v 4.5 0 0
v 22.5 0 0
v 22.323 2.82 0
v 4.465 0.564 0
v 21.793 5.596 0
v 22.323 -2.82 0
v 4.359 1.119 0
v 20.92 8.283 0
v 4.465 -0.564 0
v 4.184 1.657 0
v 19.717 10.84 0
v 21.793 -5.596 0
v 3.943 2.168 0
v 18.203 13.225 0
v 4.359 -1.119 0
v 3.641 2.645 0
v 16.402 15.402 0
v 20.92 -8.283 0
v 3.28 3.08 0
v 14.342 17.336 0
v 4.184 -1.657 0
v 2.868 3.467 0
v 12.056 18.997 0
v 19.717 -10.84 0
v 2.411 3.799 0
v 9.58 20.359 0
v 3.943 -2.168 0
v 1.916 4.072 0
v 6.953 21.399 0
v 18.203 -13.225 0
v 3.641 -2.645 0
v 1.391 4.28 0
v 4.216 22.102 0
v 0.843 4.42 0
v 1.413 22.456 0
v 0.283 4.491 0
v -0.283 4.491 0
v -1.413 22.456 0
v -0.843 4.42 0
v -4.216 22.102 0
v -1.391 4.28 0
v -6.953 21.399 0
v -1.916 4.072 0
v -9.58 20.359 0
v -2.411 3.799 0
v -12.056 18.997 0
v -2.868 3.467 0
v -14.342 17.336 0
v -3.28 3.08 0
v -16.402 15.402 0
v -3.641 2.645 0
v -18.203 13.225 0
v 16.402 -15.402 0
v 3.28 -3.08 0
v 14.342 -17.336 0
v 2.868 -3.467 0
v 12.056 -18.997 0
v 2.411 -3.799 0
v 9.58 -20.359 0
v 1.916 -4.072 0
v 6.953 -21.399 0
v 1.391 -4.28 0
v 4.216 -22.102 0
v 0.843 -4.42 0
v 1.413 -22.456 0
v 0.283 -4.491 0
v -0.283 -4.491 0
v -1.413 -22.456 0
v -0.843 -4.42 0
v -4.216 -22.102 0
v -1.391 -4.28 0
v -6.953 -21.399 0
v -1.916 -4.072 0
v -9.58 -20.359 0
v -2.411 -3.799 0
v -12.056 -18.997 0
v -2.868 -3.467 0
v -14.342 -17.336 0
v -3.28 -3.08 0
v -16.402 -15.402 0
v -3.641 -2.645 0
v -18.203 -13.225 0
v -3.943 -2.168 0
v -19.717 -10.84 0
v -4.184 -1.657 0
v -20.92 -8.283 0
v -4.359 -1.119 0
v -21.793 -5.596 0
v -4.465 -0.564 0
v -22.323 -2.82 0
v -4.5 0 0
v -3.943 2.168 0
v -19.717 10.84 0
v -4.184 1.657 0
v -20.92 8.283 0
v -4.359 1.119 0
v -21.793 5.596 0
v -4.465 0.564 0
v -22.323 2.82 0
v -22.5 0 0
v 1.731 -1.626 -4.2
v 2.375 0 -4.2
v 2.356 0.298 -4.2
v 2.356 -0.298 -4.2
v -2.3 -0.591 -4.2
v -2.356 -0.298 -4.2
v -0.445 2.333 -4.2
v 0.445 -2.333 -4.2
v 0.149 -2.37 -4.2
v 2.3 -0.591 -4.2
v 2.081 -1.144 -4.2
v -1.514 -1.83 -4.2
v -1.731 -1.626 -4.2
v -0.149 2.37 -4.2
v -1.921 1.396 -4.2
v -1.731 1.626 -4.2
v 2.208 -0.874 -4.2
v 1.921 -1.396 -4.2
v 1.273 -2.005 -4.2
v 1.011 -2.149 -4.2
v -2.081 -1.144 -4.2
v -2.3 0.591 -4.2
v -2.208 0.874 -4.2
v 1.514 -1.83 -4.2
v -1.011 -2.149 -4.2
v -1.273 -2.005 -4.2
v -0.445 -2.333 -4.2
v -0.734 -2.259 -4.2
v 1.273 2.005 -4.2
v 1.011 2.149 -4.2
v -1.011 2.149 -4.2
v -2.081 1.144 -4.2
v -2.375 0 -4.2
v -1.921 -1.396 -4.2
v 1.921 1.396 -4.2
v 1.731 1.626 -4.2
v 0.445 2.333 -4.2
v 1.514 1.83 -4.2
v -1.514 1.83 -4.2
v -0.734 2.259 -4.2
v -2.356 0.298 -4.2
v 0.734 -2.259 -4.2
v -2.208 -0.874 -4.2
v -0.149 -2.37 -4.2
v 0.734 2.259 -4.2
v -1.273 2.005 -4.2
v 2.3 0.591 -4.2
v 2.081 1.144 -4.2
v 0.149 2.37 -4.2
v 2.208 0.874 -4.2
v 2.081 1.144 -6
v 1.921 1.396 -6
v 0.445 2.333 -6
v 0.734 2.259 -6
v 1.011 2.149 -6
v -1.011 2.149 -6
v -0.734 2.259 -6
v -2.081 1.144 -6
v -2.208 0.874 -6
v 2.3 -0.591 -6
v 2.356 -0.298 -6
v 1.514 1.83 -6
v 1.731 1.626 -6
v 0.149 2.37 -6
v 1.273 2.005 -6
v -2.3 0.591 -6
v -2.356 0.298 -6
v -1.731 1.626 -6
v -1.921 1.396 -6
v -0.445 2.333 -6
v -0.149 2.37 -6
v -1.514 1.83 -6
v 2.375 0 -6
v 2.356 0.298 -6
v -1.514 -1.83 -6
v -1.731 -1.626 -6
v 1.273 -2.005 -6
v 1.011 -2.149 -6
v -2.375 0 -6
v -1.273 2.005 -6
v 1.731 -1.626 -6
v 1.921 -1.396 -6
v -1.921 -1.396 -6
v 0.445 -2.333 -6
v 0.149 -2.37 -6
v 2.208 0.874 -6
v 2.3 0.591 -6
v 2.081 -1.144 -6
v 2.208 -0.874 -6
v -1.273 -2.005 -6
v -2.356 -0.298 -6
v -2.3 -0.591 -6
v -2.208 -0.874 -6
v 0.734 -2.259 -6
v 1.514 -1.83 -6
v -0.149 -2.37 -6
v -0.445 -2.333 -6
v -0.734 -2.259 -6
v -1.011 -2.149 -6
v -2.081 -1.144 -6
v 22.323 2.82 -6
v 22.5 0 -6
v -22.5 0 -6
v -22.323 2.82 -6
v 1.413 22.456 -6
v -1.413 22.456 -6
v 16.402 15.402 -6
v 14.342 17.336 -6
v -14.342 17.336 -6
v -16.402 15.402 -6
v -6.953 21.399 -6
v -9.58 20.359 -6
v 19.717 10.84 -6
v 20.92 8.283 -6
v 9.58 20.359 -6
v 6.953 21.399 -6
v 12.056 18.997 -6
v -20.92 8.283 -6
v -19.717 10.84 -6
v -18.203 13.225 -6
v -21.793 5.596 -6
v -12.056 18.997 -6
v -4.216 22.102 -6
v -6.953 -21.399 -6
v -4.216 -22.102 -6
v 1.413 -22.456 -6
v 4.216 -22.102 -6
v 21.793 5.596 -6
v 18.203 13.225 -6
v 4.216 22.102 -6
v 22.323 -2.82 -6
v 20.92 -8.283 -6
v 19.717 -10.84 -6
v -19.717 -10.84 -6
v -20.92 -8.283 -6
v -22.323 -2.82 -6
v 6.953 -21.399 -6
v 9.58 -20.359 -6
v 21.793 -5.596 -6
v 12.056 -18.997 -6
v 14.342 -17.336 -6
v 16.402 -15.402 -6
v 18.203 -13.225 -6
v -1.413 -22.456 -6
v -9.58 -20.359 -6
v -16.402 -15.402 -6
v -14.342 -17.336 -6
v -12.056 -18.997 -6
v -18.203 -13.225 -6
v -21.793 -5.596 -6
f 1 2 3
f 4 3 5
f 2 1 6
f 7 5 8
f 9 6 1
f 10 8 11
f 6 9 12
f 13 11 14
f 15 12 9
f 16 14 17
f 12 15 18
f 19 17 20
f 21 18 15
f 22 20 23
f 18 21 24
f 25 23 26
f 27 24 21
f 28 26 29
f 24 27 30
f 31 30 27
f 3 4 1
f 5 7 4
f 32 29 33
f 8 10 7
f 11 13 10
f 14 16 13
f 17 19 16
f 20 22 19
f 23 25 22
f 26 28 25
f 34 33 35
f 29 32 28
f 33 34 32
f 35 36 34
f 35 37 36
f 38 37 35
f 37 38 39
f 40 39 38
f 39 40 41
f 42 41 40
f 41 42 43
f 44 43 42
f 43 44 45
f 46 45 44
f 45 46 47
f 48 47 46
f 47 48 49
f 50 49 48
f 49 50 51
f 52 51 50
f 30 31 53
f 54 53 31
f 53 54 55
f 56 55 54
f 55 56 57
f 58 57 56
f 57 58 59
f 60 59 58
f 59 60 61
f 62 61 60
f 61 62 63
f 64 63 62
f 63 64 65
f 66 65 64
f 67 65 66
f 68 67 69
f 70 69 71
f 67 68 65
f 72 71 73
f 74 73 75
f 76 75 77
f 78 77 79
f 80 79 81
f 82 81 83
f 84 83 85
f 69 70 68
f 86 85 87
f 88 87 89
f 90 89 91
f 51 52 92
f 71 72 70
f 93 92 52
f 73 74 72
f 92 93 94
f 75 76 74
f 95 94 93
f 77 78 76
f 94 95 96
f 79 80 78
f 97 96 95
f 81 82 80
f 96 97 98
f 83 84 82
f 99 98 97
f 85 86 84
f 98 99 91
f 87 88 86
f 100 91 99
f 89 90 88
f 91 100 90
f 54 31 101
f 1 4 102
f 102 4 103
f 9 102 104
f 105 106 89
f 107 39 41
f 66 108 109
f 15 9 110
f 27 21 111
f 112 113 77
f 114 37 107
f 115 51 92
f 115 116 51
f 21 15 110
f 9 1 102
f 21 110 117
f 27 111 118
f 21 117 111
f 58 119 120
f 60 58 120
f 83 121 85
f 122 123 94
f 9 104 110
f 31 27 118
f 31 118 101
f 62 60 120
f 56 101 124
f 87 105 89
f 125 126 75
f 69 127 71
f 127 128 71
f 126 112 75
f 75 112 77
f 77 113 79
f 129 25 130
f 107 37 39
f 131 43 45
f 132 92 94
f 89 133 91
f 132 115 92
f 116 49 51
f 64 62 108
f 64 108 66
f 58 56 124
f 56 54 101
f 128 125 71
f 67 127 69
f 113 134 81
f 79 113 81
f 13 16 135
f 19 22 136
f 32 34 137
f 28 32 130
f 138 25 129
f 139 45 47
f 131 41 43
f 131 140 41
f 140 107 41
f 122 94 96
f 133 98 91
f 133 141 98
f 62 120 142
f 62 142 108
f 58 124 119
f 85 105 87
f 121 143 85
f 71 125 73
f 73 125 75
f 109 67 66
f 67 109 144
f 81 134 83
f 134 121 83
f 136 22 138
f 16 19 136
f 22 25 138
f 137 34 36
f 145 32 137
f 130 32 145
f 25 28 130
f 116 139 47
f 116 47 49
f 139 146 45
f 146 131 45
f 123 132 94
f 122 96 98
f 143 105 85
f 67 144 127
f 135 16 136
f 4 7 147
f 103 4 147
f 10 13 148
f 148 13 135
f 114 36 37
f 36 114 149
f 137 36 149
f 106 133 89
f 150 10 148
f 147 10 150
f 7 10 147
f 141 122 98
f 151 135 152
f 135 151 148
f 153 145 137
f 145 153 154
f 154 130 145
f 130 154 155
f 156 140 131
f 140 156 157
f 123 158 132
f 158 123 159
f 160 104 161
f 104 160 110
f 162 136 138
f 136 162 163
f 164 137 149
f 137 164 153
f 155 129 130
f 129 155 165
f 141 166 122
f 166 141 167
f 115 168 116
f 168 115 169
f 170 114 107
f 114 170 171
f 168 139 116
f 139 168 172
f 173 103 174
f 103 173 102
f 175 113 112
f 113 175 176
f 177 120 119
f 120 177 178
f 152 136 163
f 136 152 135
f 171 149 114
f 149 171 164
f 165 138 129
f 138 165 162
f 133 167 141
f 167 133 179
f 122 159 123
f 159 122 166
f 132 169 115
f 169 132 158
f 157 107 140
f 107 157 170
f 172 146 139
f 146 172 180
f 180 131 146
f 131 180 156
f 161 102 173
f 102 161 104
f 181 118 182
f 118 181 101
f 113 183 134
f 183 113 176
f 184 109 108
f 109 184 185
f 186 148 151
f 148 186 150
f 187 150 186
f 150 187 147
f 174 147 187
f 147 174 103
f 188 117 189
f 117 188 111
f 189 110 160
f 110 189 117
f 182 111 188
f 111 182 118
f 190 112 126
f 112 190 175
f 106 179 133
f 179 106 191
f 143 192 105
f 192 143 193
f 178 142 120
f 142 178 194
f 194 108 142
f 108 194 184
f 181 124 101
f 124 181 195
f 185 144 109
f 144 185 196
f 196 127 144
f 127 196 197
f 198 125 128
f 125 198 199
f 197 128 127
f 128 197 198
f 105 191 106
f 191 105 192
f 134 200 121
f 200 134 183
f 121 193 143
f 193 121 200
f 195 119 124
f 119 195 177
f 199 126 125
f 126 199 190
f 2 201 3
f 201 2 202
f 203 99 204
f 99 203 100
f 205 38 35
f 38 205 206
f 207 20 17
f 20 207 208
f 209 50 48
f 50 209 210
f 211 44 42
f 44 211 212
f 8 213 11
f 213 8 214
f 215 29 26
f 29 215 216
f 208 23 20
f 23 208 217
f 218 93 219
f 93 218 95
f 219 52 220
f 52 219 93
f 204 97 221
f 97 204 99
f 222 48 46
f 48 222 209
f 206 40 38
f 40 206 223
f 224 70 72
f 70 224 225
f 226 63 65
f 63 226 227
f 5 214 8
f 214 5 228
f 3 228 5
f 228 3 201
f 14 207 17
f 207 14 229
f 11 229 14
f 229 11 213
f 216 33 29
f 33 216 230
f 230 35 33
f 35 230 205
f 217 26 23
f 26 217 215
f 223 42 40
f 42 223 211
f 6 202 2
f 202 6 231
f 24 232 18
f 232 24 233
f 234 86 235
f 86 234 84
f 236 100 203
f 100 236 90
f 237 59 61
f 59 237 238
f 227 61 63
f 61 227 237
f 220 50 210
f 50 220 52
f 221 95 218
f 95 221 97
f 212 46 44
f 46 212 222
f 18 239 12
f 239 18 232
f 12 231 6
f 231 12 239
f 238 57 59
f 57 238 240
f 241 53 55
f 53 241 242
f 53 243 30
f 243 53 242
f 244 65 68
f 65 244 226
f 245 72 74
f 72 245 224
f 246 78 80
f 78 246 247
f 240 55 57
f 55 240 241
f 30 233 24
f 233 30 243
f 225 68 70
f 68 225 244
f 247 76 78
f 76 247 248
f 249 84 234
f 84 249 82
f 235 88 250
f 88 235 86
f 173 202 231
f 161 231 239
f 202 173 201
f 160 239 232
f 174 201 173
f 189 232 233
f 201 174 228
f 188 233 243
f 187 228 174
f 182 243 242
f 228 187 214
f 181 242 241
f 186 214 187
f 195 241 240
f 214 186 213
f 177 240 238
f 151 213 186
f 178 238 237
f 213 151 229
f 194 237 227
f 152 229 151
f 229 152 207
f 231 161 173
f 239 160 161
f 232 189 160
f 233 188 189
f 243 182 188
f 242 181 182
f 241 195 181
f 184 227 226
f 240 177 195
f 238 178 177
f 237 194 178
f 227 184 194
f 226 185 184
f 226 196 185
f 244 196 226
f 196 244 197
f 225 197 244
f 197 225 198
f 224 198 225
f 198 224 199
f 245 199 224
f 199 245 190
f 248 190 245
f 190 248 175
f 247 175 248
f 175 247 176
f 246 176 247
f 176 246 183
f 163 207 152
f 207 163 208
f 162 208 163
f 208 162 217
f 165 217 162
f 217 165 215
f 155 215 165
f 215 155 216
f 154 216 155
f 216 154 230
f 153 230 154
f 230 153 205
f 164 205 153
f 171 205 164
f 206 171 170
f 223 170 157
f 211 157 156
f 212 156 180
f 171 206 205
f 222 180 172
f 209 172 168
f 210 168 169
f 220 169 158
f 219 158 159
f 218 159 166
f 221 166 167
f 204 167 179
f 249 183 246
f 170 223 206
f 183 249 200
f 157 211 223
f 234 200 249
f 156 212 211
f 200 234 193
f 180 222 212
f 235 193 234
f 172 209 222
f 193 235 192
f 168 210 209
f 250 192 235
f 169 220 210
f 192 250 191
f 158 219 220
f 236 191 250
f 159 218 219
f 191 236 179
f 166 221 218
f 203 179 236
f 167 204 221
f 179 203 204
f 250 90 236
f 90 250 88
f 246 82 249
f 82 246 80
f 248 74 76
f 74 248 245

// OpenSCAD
$fn = 50;


difference() {
	union() {
		translate(v = [0, 0, -6.0000000000]) {
			cylinder(h = 6, r = 22.5000000000);
		}
	}
	union() {
		translate(v = [0, 0, 0]) {
			rotate(a = [0, 0, 0]) {
				difference() {
					union() {
						translate(v = [0, 0, -9.0000000000]) {
							cylinder(h = 9, r = 2.2500000000);
						}
						translate(v = [0, 0, -4.2000000000]) {
							cylinder(h = 4.2000000000, r1 = 2.3750000000, r2 = 4.5000000000);
						}
						translate(v = [0, 0, -9.0000000000]) {
							cylinder(h = 9, r = 2.3750000000);
						}
						translate(v = [0, 0, -9.0000000000]) {
							cylinder(h = 9, r = 2.2500000000);
						}
					}
					union();
				}
			}
		}
	}
}
